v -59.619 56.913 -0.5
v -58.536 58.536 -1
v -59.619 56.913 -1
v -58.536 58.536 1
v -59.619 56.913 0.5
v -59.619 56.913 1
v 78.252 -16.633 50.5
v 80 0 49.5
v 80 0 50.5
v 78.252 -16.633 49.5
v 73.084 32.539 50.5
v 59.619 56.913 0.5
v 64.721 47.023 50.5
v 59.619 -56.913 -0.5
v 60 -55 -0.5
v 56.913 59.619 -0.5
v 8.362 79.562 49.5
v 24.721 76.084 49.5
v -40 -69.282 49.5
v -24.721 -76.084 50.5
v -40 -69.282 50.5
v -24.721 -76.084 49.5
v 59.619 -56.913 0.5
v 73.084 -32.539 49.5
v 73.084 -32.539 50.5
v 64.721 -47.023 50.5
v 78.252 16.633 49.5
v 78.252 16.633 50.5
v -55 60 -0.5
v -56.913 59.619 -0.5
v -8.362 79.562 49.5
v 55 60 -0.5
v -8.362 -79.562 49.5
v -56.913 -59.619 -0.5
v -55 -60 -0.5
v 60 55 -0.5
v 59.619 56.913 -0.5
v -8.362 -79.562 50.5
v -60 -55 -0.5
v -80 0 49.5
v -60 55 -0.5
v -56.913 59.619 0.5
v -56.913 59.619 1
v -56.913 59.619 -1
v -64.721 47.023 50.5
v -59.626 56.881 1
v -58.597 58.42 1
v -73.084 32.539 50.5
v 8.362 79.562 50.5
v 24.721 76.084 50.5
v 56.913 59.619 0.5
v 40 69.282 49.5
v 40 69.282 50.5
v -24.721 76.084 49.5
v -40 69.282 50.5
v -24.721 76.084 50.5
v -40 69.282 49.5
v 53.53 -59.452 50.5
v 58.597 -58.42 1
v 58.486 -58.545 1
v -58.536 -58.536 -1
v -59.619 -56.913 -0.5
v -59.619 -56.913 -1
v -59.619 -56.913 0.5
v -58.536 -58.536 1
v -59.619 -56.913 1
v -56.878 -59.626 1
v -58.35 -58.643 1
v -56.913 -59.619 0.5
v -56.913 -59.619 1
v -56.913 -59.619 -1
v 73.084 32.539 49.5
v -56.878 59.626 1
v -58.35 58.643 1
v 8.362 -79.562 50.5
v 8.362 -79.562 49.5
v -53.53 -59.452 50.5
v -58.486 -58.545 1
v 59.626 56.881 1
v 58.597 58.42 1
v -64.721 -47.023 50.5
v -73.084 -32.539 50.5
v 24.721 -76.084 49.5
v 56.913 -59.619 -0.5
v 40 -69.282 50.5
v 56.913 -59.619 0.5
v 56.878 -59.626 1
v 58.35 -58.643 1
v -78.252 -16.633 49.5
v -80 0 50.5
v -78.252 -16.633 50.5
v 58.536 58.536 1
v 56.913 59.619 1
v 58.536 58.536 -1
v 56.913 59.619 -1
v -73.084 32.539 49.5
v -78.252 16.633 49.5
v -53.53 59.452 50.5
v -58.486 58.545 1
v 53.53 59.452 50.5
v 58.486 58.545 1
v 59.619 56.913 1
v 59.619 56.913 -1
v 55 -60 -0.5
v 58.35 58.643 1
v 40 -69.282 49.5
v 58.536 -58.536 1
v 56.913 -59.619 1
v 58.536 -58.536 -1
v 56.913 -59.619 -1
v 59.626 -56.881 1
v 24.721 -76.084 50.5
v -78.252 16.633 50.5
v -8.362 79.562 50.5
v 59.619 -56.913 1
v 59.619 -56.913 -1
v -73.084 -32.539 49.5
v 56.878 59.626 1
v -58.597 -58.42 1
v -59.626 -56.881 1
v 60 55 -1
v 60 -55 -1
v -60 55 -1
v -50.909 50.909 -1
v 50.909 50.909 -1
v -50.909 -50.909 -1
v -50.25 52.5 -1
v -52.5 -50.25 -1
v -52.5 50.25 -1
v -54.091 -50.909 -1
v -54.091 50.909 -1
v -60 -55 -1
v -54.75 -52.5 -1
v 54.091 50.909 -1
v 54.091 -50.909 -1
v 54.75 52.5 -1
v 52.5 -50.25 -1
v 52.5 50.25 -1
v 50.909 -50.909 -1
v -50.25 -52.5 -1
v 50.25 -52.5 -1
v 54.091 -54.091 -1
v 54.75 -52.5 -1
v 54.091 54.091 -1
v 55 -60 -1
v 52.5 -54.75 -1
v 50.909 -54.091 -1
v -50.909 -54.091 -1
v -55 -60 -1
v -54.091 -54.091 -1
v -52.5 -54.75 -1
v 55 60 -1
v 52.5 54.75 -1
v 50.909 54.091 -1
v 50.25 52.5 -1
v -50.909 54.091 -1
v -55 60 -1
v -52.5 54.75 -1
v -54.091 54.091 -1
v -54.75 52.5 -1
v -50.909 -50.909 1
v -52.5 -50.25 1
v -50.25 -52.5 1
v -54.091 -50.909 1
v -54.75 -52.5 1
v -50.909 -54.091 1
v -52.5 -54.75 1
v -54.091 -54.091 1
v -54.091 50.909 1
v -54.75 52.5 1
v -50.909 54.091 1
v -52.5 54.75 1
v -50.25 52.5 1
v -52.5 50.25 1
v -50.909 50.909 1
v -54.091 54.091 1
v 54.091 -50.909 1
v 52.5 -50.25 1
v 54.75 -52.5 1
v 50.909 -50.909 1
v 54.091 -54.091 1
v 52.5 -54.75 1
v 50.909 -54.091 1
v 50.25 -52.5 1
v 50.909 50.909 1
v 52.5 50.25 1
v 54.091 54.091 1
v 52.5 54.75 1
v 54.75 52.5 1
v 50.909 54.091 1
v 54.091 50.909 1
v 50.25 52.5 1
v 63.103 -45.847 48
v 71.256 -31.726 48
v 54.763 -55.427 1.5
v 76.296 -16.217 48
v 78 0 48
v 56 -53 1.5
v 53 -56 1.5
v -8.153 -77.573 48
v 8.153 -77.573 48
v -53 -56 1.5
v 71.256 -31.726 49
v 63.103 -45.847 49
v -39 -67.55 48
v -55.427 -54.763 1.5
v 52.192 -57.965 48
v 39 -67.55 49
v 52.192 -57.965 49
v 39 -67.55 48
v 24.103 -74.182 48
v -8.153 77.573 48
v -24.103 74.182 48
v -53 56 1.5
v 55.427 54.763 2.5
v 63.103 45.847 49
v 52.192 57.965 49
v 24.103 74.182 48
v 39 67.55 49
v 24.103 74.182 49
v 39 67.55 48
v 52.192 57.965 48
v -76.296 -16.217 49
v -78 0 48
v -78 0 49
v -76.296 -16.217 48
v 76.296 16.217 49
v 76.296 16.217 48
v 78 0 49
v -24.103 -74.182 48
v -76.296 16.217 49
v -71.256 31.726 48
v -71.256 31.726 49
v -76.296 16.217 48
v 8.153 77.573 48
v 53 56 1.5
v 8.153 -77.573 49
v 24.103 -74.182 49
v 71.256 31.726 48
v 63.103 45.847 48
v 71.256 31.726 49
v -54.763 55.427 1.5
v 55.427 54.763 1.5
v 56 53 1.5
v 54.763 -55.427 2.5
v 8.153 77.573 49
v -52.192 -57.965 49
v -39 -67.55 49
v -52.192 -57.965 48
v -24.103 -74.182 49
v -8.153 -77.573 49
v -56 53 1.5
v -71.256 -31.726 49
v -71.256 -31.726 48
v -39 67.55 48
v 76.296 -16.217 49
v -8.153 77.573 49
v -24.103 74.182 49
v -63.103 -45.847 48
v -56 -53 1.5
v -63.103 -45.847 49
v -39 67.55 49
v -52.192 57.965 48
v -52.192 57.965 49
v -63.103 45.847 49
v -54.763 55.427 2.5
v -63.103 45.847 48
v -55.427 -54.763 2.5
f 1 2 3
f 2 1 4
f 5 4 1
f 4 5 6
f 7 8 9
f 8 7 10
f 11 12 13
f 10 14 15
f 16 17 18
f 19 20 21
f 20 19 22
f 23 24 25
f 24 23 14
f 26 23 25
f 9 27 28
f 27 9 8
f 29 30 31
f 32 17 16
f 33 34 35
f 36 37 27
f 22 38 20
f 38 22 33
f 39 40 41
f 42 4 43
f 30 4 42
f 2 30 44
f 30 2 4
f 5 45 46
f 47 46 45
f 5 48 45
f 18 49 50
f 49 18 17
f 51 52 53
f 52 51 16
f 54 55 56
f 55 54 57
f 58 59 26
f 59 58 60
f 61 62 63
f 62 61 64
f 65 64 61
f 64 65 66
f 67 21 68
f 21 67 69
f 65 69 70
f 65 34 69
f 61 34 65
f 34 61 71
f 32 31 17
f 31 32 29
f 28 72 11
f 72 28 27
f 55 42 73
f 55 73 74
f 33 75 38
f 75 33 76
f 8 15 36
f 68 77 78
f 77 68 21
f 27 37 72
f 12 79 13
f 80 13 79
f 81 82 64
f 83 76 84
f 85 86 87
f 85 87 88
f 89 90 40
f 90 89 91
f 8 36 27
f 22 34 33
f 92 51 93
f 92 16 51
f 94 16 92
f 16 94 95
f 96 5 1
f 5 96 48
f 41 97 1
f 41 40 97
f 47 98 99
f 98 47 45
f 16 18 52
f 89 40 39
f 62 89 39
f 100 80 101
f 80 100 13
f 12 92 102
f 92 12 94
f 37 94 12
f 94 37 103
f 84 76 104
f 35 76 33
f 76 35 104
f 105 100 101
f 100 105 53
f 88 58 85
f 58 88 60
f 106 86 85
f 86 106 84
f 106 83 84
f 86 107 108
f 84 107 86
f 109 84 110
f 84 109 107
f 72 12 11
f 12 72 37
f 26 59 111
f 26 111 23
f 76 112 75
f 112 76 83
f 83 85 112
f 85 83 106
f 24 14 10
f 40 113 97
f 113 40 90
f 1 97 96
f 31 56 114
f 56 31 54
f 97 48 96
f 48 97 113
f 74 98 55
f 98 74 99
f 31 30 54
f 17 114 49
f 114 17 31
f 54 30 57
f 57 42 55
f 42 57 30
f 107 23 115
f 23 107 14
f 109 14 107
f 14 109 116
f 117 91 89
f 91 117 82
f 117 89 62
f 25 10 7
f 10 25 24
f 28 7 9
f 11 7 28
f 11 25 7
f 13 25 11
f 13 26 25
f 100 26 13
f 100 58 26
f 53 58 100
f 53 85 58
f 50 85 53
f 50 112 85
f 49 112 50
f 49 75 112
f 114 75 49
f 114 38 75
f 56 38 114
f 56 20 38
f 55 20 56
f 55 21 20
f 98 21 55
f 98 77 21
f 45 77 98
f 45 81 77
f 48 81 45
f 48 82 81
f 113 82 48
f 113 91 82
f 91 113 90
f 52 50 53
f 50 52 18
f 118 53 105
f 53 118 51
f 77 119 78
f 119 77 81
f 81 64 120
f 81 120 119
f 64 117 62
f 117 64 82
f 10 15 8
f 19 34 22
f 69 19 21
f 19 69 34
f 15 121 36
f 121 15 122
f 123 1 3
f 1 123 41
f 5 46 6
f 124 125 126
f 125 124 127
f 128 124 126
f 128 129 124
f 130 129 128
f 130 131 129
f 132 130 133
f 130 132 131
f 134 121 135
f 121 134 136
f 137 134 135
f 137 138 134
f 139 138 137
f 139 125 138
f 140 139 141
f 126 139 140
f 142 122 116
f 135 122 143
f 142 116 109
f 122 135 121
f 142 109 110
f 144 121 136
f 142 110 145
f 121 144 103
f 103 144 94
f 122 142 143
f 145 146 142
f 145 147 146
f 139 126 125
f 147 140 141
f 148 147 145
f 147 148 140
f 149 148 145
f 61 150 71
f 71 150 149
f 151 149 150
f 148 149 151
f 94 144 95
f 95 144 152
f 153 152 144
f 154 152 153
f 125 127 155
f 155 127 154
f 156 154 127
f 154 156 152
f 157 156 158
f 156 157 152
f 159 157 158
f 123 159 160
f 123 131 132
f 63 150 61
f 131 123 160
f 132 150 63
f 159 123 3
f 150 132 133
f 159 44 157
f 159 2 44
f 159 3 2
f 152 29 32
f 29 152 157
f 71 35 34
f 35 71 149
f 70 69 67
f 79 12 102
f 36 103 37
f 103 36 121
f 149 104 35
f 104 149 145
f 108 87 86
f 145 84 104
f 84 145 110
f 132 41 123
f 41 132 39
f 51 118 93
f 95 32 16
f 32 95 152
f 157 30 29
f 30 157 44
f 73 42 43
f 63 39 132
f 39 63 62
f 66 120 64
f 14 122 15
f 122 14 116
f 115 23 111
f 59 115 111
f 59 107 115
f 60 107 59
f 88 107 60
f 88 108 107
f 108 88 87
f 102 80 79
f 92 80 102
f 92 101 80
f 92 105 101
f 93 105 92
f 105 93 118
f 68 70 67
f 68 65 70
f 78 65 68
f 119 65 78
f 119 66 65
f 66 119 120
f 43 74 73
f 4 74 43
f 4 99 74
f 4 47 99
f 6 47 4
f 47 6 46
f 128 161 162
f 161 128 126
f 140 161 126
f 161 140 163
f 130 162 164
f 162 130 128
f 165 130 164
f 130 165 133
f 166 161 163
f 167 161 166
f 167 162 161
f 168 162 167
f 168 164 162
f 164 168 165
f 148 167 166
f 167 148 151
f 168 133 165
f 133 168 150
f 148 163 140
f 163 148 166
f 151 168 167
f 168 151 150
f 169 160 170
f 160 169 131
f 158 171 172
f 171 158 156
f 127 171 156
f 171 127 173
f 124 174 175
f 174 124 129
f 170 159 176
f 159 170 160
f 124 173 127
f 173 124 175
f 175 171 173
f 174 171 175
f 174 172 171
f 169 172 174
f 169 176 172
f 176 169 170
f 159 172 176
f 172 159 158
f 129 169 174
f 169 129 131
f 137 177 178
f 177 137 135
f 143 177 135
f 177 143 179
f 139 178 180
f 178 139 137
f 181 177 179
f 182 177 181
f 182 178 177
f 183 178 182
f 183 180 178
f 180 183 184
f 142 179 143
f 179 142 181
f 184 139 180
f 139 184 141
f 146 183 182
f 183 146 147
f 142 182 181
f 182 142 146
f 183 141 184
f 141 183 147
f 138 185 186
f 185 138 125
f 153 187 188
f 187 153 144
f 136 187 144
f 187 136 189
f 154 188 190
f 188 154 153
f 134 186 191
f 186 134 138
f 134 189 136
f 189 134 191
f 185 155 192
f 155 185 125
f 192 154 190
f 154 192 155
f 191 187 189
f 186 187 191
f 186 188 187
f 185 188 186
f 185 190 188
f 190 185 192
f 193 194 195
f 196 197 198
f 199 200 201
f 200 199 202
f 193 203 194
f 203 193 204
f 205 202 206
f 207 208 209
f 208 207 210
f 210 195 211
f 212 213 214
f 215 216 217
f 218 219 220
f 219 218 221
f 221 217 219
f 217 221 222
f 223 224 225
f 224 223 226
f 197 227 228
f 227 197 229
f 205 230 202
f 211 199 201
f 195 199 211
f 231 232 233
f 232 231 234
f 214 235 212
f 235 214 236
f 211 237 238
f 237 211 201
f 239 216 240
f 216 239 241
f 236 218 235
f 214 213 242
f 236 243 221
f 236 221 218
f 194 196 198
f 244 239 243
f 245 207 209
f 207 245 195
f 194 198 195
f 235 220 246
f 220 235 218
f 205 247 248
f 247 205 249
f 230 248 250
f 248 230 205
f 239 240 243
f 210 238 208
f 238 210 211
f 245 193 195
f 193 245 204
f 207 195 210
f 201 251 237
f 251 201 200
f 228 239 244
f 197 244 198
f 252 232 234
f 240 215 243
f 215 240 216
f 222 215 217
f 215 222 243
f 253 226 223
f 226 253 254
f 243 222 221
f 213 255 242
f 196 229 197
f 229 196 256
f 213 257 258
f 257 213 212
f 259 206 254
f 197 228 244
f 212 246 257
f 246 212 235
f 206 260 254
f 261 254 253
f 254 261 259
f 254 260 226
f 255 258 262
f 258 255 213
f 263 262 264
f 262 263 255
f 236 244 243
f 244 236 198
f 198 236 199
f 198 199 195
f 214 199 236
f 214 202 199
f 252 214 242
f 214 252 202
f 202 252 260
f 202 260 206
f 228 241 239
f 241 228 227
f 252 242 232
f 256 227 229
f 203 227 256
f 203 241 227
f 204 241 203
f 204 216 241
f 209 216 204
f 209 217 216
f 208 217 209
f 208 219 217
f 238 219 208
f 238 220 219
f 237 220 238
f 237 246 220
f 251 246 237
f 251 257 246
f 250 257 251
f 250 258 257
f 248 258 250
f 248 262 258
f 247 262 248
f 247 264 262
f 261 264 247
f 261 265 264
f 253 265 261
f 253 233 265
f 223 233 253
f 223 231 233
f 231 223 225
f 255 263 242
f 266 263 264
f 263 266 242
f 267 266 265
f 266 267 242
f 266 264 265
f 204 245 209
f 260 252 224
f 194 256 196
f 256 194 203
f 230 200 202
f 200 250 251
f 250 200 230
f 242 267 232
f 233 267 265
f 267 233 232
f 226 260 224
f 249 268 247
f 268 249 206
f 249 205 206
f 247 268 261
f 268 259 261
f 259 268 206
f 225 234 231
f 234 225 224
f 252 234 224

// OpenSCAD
// 120mm PC Fan Diffuser
// Designed to mount on exhaust side of 120mm PC fans
// Reduces noise and distributes airflow evenly

// Parameters
fan_size = 120;           // Fan dimension (120mm x 120mm)
fan_thickness = 25;       // Standard fan thickness
mounting_hole_spacing = 105; // Standard 120mm fan mounting holes
mounting_hole_diameter = 4.5; // For M4 screws with clearance
diffuser_length = 50;     // Length of diffuser section
diffuser_outer_diameter = 160; // Final diffuser opening diameter
wall_thickness = 2.0;     // Wall thickness
corner_radius = 5;        // Rounded corners
grid_spacing = 8;         // Spacing for airflow straightening grid
grid_thickness = 1.5;     // Thickness of grid elements

module fan_diffuser() {
    difference() {
        union() {
            // Main diffuser body - expands from fan size to larger opening
            hull() {
                // Fan mounting end - rounded square
                translate([0, 0, 0])
                    linear_extrude(height=1, center=true)
                    offset(r=corner_radius)
                    square([fan_size-2*corner_radius, fan_size-2*corner_radius], center=true);
                
                // Large diffuser opening
                translate([0, 0, diffuser_length])
                    cylinder(d=diffuser_outer_diameter, h=1, center=true);
            }
            
            // Fan mounting flange
            translate([0, 0, -wall_thickness/2])
                linear_extrude(height=wall_thickness)
                offset(r=corner_radius)
                square([fan_size-2*corner_radius, fan_size-2*corner_radius], center=true);
            
            // Airflow straightening grid at output
            translate([0, 0, diffuser_length-grid_thickness/2]) {
                // Concentric circles for flow straightening
                for(r = [20:15:diffuser_outer_diameter/2-10]) {
                    difference() {
                        cylinder(d=r*2+grid_thickness, h=grid_thickness, center=true);
                        cylinder(d=r*2-grid_thickness, h=grid_thickness+1, center=true);
                    }
                }
                
                // Radial spokes
                for(angle = [0:45:315]) {
                    rotate([0, 0, angle])
                        translate([0, 0, 0])
                        cube([diffuser_outer_diameter-20, grid_thickness, grid_thickness], center=true);
                }
            }
        }
        
        // Hollow interior - airflow channel
        hull() {
            // Interior opening at fan end
            translate([0, 0, wall_thickness])
                linear_extrude(height=1, center=true)
                offset(r=corner_radius-wall_thickness)
                square([fan_size-2*corner_radius-2*wall_thickness, 
                       fan_size-2*corner_radius-2*wall_thickness], center=true);
            
            // Interior opening at diffuser end
            translate([0, 0, diffuser_length-grid_thickness])
                cylinder(d=diffuser_outer_diameter-2*wall_thickness, h=1, center=true);
        }
        
        // Fan mounting holes
        for(x = [-1, 1]) {
            for(y = [-1, 1]) {
                translate([x * mounting_hole_spacing/2, y * mounting_hole_spacing/2, -wall_thickness-1])
                    cylinder(d=mounting_hole_diameter, h=wall_thickness+2);
            }
        }
        
        // Fan blade clearance area
        translate([0, 0, wall_thickness])
            cylinder(d=fan_size-10, h=fan_thickness+1);
    }
}

// Generate the diffuser
fan_diffuser();
